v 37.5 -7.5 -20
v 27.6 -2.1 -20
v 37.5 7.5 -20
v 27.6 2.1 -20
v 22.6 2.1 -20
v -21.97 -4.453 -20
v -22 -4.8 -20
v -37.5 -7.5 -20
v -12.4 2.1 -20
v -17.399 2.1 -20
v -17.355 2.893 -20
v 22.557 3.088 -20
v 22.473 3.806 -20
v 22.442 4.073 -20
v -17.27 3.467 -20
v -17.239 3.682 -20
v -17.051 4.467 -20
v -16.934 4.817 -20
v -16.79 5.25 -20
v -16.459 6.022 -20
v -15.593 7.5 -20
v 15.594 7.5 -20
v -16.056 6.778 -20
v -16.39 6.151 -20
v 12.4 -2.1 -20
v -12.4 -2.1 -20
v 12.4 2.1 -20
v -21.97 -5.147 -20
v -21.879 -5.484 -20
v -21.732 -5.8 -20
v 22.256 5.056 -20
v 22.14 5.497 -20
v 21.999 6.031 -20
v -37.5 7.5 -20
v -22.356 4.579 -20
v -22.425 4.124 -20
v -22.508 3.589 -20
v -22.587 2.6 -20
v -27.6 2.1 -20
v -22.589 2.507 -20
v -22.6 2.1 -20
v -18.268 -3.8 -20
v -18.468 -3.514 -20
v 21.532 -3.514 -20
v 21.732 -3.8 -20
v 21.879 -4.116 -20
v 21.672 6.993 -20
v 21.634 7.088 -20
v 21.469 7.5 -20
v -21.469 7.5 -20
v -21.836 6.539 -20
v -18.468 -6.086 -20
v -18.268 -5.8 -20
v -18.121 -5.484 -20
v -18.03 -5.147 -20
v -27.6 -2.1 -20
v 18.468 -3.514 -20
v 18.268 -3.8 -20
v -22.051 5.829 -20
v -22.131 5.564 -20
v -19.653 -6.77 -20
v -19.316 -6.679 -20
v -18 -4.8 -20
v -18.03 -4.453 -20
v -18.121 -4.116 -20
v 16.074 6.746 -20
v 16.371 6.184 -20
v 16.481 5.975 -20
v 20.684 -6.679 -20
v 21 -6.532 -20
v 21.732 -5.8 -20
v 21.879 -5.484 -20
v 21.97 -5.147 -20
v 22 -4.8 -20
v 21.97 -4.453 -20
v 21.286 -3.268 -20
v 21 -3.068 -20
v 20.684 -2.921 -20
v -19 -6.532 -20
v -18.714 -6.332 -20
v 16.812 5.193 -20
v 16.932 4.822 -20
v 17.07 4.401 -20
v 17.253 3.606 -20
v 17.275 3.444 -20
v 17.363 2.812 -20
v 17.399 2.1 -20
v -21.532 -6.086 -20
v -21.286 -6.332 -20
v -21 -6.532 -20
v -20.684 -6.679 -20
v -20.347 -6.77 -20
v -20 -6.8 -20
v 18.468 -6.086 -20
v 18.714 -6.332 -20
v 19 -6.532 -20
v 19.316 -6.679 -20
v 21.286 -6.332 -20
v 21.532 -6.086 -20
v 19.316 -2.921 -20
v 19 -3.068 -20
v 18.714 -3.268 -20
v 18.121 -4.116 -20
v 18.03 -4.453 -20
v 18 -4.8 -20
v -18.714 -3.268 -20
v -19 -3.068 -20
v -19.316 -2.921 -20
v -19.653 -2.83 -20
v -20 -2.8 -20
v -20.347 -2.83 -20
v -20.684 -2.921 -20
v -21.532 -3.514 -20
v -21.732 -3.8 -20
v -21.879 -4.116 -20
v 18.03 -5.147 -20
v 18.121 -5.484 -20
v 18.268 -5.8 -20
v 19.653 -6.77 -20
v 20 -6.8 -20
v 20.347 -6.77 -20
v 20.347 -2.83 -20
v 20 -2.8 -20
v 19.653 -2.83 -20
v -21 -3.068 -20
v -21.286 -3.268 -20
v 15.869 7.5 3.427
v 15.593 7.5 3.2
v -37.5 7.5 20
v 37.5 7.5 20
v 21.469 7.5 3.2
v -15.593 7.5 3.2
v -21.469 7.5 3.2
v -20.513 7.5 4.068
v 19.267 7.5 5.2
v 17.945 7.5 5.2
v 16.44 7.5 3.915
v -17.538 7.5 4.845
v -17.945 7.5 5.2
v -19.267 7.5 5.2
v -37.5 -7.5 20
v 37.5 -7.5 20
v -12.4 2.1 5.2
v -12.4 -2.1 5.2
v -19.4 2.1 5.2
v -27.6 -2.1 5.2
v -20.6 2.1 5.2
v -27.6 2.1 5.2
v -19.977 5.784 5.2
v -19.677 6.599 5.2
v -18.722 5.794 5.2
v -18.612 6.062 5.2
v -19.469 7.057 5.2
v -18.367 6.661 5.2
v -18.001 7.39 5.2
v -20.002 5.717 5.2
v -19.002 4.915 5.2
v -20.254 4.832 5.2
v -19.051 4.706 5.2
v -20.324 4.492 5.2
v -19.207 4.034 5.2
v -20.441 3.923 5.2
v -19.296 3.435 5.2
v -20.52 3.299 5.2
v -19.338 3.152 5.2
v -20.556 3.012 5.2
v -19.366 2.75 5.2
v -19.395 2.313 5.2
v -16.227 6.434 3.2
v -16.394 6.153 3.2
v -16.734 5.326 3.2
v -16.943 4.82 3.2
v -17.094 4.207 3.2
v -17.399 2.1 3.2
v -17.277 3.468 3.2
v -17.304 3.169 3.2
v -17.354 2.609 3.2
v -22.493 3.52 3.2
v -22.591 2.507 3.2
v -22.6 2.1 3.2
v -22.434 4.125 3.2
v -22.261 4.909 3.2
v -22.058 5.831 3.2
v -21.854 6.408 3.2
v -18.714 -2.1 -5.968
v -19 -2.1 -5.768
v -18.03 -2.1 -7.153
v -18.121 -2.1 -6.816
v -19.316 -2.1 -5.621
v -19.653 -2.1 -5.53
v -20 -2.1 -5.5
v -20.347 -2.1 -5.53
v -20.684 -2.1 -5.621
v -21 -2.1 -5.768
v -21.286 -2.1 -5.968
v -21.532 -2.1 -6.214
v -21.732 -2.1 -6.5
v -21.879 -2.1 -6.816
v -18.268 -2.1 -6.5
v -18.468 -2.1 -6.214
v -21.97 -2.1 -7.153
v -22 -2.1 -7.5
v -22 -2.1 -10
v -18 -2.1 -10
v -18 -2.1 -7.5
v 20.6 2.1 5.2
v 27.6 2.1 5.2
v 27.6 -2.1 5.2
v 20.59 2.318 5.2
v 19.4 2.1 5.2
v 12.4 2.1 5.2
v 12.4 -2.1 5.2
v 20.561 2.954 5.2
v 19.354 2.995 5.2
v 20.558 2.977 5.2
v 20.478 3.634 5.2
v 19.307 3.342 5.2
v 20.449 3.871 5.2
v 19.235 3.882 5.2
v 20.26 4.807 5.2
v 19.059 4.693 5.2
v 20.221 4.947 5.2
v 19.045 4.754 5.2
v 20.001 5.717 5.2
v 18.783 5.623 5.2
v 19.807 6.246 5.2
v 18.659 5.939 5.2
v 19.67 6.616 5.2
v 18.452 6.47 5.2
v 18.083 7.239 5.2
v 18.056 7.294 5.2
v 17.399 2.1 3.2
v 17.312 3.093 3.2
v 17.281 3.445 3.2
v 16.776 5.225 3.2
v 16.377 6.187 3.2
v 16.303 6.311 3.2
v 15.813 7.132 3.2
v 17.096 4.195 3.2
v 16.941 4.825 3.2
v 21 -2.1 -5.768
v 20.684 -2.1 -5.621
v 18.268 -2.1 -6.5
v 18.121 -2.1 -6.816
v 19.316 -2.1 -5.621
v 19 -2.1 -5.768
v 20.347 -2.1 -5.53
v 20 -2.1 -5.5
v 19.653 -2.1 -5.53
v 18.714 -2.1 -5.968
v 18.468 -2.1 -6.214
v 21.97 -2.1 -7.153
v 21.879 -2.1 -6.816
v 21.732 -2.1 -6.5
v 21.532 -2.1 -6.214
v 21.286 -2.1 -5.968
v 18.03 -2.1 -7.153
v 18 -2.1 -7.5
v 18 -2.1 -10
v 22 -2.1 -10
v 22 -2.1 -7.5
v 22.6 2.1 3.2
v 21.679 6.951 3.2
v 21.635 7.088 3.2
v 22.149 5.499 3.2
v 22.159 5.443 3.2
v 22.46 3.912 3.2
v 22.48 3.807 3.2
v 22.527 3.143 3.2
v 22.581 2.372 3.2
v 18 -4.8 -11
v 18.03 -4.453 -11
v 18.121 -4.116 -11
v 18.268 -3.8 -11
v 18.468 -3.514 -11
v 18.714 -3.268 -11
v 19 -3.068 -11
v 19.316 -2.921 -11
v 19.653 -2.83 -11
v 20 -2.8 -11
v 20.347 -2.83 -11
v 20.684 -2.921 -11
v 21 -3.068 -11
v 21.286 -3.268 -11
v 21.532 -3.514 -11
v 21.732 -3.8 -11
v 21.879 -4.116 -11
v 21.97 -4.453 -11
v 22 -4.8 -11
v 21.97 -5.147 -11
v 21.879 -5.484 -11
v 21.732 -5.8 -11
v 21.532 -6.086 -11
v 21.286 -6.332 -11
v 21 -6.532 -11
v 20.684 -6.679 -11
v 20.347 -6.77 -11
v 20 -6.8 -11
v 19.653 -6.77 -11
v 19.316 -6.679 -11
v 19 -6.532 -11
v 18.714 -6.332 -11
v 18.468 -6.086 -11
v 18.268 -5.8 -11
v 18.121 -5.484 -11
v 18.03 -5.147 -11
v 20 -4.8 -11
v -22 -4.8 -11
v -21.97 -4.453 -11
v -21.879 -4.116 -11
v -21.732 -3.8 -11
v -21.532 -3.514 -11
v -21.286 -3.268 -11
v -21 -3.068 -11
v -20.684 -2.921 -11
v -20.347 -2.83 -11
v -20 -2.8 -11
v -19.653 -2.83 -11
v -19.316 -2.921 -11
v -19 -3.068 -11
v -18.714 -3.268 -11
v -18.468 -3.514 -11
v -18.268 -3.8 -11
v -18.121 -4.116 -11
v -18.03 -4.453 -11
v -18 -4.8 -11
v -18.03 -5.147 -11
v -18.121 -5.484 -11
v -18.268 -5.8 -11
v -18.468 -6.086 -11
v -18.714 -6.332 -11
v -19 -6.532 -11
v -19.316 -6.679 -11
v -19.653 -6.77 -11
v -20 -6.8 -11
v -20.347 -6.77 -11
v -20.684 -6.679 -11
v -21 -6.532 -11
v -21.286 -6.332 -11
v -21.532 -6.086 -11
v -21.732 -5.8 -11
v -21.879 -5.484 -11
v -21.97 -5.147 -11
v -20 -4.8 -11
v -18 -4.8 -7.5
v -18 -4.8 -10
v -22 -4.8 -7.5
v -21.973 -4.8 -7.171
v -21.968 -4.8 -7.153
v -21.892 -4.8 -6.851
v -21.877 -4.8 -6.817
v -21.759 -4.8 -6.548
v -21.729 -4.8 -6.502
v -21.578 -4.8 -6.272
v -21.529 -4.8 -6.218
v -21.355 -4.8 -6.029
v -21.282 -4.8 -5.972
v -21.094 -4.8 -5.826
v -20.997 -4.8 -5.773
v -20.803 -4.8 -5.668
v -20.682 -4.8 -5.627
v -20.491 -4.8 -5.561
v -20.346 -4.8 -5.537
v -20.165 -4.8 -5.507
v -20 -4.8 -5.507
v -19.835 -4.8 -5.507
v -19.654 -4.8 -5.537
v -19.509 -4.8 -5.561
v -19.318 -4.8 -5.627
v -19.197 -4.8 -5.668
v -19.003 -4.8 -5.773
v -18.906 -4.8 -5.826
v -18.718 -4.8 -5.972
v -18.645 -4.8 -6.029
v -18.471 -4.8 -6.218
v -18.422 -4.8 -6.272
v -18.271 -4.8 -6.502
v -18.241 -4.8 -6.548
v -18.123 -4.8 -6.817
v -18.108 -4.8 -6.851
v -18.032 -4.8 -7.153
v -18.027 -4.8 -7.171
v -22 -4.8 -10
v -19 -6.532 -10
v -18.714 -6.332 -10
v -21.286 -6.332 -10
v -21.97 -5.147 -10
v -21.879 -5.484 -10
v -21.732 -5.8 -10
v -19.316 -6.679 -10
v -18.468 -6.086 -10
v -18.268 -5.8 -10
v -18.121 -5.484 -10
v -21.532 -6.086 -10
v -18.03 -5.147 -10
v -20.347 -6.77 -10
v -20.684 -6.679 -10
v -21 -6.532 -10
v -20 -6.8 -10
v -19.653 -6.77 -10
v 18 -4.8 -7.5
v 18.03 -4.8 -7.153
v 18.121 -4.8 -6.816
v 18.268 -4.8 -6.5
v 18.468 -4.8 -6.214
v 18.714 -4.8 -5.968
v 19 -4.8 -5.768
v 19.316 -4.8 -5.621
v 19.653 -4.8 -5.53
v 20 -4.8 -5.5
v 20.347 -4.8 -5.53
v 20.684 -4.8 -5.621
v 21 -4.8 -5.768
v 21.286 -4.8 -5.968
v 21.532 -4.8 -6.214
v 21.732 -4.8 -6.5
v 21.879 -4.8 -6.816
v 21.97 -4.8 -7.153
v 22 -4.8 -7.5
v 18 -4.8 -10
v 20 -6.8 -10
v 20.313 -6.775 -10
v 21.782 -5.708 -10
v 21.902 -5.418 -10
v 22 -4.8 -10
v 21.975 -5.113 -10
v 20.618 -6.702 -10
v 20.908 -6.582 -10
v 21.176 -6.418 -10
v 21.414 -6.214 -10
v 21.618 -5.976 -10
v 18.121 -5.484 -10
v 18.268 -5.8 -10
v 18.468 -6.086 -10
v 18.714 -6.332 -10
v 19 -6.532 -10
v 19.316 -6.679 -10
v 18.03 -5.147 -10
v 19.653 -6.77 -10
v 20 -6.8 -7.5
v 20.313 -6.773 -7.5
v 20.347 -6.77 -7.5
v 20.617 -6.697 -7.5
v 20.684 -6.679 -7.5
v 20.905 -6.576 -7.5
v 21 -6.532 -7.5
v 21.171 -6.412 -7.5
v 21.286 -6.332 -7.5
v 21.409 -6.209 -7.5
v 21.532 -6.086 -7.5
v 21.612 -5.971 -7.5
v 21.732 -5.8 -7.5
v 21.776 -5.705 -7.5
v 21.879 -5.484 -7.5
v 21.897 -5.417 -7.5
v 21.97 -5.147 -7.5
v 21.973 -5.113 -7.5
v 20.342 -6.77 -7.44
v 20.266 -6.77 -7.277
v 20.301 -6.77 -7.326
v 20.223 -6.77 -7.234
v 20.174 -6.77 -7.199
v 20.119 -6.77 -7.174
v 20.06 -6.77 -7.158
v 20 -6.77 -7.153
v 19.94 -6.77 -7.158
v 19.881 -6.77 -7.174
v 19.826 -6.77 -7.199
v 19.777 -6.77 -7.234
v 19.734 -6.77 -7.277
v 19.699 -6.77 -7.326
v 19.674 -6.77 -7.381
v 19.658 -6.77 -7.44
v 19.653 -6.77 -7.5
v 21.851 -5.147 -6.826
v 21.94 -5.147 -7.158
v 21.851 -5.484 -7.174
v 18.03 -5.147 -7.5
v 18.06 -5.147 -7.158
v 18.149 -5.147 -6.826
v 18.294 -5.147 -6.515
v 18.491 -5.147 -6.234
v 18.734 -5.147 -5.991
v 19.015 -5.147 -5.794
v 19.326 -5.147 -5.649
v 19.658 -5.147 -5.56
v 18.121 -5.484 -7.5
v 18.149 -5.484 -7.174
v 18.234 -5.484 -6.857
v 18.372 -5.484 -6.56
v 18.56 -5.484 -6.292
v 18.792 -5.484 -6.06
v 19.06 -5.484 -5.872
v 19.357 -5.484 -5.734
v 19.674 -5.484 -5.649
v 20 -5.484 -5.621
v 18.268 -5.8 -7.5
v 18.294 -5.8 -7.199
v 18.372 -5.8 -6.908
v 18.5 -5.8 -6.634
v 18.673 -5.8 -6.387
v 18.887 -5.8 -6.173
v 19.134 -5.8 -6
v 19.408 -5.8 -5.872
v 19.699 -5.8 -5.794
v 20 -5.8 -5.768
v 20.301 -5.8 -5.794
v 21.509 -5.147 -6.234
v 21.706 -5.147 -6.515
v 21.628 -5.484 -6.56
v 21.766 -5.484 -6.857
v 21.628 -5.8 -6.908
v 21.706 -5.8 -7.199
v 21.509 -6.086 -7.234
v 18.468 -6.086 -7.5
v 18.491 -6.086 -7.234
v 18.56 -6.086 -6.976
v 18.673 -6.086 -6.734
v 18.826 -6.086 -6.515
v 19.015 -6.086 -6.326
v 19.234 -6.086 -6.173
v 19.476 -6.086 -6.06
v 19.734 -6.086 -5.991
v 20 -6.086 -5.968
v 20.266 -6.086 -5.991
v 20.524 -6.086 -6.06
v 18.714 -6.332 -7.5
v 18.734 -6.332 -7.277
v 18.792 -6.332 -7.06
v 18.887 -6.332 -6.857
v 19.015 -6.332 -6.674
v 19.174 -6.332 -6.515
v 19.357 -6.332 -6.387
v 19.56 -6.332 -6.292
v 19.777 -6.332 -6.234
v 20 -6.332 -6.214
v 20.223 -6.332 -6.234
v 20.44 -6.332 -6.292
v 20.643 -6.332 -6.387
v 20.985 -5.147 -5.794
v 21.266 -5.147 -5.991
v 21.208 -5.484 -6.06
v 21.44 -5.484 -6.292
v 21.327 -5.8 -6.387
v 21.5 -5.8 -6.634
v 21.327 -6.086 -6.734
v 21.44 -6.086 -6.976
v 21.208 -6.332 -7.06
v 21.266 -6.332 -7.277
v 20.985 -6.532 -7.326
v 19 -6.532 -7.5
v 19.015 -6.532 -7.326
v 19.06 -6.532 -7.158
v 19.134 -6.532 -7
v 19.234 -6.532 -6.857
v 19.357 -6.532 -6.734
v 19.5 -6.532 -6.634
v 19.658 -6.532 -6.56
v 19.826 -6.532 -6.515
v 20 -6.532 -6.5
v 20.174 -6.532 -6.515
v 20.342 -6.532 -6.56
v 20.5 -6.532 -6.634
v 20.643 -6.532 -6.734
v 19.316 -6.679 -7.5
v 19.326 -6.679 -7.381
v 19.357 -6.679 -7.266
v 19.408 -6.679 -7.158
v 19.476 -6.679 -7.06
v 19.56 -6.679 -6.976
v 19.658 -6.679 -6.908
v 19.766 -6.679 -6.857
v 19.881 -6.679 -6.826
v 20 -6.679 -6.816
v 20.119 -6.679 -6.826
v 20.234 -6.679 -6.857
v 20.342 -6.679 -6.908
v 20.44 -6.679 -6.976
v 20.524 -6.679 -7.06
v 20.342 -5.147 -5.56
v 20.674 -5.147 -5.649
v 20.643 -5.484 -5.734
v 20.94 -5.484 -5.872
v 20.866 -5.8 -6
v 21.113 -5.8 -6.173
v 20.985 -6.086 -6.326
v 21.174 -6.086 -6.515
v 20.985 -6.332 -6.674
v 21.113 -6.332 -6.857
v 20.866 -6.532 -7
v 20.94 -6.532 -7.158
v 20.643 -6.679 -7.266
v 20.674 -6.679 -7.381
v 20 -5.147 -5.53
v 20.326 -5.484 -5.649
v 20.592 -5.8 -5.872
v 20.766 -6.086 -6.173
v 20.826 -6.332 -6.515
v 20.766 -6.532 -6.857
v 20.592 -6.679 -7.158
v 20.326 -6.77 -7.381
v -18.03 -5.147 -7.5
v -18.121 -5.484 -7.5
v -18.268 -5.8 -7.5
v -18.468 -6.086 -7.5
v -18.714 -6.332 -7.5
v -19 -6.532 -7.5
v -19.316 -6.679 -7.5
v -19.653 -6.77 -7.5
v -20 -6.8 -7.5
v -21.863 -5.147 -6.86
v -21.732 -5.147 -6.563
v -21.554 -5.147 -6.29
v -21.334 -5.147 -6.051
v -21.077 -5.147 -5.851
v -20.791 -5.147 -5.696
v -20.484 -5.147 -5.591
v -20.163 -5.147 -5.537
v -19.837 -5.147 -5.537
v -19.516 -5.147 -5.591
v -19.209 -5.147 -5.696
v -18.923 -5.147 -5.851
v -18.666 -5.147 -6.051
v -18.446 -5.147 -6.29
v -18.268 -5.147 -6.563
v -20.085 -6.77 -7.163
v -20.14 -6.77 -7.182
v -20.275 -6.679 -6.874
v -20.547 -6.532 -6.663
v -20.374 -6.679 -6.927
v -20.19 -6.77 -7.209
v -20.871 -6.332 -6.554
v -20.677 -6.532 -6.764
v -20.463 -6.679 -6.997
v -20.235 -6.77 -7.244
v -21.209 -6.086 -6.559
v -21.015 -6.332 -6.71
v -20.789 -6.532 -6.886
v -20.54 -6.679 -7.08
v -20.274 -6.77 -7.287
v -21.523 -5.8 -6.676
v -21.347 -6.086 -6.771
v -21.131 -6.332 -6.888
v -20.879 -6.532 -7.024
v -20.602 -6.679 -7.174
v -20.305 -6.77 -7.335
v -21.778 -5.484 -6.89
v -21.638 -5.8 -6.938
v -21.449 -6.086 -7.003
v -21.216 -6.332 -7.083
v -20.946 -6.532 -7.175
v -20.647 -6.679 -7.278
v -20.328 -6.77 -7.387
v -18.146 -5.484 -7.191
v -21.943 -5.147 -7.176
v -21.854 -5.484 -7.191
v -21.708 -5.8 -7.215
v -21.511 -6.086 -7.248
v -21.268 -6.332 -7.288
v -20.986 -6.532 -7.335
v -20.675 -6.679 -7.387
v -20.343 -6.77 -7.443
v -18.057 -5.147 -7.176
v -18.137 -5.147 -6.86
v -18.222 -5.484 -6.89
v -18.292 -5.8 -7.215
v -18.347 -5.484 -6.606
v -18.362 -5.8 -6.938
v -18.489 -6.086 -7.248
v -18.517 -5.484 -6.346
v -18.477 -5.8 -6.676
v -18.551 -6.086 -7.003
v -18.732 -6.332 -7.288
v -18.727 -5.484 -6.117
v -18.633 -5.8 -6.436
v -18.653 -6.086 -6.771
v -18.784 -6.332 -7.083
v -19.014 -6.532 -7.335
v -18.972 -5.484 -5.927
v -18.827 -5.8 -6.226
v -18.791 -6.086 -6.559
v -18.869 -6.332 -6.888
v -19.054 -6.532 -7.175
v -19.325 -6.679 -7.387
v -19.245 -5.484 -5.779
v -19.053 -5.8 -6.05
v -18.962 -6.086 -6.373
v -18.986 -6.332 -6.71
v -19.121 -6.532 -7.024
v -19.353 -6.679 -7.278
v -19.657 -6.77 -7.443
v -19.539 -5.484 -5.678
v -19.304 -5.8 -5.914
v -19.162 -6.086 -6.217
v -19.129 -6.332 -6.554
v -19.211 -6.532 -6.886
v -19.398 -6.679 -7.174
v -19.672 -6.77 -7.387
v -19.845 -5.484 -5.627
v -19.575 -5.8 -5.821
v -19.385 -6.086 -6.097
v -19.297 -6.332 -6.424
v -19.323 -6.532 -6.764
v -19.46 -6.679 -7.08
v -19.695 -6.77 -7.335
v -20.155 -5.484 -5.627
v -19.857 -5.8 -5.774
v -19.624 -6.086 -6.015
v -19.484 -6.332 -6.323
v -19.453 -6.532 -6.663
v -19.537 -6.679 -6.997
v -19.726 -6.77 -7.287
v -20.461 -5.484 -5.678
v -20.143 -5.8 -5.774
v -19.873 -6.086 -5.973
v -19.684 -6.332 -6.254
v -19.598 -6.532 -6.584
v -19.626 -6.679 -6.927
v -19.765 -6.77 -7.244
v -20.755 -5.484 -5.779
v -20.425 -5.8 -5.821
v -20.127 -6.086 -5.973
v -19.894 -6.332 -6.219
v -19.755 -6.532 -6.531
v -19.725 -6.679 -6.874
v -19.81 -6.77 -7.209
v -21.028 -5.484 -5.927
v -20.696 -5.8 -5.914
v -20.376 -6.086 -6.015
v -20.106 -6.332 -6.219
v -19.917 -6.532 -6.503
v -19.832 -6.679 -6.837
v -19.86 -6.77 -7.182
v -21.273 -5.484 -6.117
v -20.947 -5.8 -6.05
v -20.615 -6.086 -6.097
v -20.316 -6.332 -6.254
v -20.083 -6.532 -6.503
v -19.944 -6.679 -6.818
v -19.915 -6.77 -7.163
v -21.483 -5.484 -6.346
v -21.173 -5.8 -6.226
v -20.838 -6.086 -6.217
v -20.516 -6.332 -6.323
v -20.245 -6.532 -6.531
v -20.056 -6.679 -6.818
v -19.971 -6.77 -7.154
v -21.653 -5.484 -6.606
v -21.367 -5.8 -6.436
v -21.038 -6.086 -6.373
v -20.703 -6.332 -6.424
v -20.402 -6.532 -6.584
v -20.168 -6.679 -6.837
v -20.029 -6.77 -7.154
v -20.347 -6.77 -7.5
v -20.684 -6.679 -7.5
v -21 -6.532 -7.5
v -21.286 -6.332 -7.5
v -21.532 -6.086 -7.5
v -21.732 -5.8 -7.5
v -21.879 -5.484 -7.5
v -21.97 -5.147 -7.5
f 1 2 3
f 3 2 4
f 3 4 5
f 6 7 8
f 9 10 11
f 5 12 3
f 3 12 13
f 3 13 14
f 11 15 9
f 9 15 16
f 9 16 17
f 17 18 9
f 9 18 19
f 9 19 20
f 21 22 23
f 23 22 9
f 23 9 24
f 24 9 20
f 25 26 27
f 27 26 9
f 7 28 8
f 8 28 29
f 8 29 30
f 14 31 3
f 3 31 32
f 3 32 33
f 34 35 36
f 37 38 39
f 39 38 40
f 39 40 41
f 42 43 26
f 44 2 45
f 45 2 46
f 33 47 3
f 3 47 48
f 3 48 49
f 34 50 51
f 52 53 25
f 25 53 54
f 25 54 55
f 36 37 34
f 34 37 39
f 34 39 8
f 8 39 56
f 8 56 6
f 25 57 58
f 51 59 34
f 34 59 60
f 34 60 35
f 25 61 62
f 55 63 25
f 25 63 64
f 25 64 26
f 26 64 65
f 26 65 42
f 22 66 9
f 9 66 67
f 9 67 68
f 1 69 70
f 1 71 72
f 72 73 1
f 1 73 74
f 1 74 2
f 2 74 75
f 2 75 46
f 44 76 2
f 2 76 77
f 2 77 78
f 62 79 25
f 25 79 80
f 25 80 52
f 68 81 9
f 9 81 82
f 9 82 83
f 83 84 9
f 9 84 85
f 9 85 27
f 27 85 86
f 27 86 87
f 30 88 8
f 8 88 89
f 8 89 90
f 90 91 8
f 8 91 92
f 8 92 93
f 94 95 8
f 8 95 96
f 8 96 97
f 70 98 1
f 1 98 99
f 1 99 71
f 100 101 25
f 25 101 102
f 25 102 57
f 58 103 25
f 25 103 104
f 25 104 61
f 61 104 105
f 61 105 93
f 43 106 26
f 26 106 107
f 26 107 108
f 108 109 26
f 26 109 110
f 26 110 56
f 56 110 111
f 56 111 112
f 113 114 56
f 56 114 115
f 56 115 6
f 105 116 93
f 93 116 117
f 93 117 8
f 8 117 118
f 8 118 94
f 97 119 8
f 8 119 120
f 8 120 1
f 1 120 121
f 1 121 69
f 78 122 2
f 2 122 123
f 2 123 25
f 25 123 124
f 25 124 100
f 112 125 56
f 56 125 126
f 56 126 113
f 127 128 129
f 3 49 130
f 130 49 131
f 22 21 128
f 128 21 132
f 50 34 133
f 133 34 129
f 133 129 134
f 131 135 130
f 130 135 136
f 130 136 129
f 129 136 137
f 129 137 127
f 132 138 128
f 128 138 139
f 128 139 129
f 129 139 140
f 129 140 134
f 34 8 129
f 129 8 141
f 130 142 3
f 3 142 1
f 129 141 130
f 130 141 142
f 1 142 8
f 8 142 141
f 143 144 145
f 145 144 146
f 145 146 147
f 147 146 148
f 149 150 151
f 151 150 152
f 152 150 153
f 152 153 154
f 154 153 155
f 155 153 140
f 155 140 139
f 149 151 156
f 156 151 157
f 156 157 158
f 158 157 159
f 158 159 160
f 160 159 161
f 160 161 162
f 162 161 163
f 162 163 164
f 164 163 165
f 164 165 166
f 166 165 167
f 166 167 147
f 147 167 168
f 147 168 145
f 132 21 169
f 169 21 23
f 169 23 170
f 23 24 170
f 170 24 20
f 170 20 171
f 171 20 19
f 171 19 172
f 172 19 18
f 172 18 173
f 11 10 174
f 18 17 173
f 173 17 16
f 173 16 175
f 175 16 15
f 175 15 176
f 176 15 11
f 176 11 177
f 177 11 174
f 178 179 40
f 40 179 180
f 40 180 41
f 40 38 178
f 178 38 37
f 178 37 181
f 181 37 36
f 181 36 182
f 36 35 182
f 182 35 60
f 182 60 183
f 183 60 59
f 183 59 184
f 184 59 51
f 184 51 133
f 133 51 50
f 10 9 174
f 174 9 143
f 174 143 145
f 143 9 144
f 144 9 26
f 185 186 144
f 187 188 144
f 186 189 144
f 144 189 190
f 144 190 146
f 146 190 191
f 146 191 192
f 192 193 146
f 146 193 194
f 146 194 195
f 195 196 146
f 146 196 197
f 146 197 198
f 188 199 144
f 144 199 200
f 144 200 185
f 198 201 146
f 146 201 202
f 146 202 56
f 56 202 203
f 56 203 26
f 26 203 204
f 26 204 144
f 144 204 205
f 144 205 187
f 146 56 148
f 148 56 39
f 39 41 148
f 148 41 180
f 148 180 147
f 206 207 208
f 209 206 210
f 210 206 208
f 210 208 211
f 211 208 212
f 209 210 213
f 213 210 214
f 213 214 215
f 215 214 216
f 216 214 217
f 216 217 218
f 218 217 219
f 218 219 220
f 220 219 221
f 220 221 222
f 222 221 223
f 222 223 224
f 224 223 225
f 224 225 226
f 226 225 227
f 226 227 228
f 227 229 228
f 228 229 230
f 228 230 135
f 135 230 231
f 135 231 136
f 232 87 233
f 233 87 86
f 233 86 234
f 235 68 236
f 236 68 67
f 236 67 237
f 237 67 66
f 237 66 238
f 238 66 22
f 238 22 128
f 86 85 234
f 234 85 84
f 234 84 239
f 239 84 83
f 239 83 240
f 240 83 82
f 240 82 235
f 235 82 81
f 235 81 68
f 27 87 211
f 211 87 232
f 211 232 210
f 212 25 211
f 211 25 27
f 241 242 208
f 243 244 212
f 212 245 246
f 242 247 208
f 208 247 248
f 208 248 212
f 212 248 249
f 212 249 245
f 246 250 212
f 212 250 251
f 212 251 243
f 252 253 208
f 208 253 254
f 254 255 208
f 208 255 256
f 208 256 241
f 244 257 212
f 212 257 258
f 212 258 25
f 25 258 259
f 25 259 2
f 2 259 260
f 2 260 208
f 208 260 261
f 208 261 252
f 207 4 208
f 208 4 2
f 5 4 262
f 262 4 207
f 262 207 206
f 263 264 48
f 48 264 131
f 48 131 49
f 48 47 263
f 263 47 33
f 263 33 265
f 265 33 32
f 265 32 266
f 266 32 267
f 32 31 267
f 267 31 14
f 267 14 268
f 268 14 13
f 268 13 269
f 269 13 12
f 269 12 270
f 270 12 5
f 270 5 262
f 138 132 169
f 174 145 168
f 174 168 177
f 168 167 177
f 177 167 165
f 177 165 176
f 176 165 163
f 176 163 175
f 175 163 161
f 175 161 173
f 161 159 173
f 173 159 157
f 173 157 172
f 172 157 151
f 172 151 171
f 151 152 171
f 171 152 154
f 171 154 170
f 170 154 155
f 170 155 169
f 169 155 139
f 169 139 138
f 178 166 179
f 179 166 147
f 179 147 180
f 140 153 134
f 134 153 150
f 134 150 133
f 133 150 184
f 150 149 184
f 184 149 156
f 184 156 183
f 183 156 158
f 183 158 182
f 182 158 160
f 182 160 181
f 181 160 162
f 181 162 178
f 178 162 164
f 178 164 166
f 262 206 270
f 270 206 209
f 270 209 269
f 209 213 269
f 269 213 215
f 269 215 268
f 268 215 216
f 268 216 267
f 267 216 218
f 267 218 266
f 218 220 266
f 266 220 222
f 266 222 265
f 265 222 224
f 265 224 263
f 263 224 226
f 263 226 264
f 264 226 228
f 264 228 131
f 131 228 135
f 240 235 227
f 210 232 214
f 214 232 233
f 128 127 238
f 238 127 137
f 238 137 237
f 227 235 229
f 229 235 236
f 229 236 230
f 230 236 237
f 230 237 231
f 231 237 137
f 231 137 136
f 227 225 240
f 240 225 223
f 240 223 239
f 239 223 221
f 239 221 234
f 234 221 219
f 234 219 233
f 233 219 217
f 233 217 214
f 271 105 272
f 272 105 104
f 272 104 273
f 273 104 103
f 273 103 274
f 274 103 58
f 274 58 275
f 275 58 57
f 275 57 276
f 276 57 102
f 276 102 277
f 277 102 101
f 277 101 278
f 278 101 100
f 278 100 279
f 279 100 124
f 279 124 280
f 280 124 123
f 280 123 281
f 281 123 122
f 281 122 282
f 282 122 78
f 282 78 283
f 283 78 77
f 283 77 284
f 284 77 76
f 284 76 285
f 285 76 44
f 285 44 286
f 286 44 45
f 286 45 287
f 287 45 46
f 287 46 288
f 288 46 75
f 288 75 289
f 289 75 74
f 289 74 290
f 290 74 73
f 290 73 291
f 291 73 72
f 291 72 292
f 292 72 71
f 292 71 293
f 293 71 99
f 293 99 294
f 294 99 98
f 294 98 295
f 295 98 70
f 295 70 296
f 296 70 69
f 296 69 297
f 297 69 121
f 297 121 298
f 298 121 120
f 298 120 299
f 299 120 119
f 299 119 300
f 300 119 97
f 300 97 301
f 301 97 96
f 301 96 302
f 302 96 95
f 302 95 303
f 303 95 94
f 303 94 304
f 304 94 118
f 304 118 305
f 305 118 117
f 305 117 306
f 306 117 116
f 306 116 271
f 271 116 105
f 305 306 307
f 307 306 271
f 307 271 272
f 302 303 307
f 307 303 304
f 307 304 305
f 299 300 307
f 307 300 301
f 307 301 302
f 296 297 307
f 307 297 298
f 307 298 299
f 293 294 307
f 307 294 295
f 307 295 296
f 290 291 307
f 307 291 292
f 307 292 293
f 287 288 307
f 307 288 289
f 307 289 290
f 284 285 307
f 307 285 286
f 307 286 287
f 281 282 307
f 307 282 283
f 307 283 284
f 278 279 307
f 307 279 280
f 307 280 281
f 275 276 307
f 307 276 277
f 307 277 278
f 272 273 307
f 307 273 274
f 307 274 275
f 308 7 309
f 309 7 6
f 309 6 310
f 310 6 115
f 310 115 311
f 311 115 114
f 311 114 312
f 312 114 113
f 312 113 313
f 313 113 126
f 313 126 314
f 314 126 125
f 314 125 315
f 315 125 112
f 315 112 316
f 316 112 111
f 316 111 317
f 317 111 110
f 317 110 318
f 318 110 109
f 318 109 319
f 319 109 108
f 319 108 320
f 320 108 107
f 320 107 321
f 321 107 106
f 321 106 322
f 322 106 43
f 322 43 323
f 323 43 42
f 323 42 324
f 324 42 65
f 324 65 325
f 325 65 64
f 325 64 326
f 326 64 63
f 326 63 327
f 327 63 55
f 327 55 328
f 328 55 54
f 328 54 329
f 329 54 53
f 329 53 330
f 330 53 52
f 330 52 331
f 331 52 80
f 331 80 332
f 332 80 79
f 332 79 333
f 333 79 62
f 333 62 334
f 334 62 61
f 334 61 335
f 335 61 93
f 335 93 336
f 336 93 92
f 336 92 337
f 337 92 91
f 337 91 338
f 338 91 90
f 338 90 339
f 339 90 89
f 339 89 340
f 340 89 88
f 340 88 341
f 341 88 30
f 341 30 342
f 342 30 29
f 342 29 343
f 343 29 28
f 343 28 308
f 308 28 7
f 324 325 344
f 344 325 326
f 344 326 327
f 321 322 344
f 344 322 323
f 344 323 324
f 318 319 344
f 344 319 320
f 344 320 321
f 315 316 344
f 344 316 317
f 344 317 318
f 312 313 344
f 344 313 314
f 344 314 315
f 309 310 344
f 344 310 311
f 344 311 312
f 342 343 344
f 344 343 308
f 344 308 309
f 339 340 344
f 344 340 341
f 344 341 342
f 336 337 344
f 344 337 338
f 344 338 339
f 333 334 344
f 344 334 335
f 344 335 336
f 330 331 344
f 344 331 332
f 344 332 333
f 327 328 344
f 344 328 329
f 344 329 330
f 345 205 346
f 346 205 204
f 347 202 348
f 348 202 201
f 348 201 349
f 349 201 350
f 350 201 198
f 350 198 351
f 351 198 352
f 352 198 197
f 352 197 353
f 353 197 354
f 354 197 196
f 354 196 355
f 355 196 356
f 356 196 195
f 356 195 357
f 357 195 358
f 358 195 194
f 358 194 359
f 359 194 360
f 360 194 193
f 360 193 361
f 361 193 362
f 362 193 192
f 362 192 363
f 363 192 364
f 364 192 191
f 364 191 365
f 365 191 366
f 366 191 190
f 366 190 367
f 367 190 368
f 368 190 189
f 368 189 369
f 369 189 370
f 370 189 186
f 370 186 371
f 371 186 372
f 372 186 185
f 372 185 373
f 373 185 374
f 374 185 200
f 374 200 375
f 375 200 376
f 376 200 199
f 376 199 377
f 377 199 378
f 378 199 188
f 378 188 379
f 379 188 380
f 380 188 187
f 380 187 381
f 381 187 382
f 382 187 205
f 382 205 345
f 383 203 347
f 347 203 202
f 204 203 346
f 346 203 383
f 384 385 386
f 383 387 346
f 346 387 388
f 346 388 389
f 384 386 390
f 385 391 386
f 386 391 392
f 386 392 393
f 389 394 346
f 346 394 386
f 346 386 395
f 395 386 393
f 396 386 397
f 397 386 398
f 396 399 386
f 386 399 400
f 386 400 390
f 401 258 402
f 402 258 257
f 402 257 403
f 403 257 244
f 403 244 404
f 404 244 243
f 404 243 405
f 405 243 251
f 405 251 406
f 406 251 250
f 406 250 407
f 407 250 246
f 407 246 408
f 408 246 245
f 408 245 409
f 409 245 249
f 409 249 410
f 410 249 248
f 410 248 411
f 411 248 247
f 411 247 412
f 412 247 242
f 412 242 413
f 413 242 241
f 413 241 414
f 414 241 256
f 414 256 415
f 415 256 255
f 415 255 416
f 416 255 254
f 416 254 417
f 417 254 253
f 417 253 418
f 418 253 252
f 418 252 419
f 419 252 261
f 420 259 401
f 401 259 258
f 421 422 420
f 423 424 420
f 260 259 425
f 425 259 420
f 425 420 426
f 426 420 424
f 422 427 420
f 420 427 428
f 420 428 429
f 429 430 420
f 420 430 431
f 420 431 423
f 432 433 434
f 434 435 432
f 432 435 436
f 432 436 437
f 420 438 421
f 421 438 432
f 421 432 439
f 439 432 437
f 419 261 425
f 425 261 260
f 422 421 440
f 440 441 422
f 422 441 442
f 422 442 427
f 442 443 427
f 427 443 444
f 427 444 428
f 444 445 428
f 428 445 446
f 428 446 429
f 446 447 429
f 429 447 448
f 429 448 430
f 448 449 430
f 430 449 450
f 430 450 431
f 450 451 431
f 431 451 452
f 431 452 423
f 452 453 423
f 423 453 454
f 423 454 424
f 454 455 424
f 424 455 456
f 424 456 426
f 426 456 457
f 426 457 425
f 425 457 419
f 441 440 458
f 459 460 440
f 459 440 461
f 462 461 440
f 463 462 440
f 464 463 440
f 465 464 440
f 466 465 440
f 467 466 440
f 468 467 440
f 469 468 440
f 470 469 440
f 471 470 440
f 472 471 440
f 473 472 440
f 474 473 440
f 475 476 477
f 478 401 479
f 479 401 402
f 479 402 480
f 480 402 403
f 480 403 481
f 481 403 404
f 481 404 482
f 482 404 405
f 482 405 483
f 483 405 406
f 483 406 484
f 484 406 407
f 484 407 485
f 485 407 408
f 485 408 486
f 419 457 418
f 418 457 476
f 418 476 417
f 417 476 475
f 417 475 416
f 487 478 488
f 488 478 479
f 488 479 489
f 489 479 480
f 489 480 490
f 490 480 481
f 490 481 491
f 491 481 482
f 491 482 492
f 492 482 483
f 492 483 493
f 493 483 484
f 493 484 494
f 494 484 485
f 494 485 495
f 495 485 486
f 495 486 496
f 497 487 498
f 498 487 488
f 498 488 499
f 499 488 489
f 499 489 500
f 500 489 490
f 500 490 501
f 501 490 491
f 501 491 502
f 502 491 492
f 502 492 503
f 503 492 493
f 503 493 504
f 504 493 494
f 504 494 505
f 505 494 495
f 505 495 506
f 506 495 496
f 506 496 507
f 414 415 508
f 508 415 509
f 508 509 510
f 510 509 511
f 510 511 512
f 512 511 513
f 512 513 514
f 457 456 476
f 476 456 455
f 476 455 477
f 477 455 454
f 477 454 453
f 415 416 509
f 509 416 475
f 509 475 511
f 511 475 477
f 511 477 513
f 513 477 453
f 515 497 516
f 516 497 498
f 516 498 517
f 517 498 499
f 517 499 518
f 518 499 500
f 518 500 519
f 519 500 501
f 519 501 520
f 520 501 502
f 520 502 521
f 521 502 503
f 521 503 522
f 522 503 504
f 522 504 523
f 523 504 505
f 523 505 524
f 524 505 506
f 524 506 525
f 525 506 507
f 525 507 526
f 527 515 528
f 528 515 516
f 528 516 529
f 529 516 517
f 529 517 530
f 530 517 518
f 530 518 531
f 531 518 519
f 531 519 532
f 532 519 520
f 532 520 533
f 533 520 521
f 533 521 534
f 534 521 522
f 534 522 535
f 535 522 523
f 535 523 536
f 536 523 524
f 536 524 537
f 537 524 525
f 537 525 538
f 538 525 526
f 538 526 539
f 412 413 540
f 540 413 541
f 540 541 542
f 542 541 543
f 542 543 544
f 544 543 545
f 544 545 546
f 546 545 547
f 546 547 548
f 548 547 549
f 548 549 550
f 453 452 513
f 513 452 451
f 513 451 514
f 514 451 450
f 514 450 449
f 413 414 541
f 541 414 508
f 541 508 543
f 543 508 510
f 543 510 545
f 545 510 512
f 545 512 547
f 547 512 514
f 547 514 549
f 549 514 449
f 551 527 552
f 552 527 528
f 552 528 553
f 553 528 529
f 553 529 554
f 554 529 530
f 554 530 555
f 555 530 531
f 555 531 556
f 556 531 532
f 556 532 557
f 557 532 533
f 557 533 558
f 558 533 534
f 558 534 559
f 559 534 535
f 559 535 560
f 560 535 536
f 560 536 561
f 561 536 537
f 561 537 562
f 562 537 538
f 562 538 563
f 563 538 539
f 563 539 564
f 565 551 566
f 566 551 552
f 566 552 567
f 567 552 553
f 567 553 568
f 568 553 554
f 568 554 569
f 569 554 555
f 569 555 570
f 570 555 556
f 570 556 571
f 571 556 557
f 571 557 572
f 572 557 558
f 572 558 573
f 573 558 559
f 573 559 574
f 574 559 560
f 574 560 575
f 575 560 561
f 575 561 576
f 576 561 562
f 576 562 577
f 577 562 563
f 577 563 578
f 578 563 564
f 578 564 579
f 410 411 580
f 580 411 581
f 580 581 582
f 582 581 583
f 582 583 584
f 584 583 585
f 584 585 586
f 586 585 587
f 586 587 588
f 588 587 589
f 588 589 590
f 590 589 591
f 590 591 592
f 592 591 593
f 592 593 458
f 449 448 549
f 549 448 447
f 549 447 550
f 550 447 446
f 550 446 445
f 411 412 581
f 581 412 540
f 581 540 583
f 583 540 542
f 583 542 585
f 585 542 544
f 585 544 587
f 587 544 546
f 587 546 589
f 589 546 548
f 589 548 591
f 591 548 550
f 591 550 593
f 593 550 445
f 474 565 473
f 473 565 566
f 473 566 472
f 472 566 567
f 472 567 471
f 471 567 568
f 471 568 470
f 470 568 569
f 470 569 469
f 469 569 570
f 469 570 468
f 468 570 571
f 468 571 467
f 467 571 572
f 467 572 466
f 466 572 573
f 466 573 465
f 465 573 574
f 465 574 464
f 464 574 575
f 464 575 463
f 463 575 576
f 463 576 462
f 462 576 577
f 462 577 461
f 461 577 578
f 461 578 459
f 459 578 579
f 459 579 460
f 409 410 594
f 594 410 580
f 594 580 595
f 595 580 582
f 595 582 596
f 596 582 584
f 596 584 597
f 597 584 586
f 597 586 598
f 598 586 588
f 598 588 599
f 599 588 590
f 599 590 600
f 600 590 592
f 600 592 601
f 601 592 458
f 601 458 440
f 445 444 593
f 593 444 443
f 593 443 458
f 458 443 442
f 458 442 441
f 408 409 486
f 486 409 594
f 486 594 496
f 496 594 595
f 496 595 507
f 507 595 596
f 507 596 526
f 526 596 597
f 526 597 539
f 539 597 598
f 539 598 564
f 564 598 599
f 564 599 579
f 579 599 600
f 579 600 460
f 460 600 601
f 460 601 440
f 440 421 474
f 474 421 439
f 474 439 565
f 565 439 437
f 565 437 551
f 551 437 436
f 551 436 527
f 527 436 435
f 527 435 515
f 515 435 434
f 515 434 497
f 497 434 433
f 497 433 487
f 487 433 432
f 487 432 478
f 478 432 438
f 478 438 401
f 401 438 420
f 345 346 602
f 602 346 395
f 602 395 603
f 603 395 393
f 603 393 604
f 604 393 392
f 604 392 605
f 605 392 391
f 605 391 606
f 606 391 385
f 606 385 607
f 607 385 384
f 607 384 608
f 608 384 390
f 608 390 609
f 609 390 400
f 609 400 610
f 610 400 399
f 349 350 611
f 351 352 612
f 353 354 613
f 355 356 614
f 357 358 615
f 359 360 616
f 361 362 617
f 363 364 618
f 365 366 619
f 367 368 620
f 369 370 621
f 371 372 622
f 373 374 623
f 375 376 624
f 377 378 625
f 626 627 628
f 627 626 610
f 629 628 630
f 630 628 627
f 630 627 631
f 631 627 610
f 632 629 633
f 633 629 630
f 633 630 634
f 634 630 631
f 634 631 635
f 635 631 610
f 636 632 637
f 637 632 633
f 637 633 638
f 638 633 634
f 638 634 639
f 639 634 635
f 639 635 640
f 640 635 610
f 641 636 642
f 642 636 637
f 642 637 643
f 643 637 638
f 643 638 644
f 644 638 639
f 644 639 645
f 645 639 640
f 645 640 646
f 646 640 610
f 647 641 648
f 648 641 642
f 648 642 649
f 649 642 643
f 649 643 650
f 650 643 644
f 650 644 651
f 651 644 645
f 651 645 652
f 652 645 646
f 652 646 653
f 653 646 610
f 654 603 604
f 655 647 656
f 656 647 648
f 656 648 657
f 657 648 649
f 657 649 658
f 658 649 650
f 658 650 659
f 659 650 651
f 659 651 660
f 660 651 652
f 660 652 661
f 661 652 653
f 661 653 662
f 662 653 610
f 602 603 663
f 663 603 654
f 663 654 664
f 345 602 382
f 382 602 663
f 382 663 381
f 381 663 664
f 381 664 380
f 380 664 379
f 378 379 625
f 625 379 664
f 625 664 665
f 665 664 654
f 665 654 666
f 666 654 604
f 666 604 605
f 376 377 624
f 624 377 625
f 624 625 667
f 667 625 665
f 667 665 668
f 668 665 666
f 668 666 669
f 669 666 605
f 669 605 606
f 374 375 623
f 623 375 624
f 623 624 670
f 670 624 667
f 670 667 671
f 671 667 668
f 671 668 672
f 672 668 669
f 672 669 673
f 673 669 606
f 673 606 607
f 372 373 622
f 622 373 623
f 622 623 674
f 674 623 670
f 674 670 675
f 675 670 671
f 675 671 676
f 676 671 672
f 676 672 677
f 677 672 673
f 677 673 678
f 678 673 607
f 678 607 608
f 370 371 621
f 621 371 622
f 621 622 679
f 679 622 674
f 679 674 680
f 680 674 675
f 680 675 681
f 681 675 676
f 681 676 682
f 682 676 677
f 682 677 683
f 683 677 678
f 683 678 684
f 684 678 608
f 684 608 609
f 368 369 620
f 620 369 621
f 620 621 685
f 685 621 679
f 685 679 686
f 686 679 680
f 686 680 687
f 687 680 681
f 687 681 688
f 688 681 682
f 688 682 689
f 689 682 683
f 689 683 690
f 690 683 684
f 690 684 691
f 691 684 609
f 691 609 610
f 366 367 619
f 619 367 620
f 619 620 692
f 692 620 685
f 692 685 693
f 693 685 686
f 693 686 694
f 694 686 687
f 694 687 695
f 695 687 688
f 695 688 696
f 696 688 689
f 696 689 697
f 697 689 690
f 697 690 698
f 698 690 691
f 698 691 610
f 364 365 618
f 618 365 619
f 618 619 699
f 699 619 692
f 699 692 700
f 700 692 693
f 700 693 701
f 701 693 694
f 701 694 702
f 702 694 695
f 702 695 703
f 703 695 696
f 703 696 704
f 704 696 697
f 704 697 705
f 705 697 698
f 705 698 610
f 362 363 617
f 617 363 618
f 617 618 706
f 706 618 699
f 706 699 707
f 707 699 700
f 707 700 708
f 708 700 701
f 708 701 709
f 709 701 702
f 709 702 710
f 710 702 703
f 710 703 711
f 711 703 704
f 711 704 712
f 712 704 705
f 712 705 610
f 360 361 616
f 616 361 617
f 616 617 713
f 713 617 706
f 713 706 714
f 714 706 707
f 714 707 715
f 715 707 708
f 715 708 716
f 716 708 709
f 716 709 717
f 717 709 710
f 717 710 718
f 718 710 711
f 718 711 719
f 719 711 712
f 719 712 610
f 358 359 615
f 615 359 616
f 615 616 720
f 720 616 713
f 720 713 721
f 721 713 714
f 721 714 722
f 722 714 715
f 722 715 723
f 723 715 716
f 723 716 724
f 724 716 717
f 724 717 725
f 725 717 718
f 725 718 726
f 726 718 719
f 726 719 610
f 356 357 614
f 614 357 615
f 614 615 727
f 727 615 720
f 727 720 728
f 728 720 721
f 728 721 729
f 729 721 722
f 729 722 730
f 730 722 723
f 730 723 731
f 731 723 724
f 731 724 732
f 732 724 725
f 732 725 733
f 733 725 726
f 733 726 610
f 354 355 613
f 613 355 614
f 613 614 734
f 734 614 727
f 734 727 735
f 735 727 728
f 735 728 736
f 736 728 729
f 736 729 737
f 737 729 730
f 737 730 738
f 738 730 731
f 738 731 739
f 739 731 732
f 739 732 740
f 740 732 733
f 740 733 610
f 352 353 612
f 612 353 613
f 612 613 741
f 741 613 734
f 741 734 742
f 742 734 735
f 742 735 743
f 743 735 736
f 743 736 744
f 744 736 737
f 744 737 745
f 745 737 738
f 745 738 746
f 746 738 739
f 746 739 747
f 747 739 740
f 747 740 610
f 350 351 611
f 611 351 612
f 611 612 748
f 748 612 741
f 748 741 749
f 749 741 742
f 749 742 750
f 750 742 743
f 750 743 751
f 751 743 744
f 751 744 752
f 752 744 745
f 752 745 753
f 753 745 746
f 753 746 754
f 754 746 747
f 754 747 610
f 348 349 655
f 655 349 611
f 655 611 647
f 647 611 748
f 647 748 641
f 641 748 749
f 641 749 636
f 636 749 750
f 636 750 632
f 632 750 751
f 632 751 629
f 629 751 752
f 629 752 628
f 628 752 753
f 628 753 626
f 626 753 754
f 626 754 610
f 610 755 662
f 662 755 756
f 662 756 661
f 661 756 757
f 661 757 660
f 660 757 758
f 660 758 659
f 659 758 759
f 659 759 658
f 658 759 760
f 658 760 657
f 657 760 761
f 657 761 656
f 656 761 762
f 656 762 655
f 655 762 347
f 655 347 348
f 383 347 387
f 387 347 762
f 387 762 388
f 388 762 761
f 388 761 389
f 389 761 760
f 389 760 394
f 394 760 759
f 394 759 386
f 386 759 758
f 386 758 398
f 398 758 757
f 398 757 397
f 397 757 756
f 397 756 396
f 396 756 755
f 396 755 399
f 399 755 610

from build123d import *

# Parameters (mm, degrees)
BOSS_EXTRUDE1_DEPTH      = 7.5
BOSS_EXTRUDE1_DEPTH_BACK = 7.5
SKETCH1_W                = 75
SKETCH1_H                = 40
CUT_EXTRUDE1_DEPTH       = 5.2
CUT_EXTRUDE1_DEPTH_BACK  = 20
CHAMFER1_SIZE            = 2
SKETCH3_R                = 2
CUT_EXTRUDE2_DEPTH       = 9
CUT_EXTRUDE3_DEPTH       = 4.7
FILLET1_R                = 2


with BuildPart() as part:
    # Sketch1 → Boss-Extrude1 (new, two sides: drawn at the far end of the back side and taken through both)
    with BuildSketch(Plane(origin=(0, 0, 0), x_dir=(1, 0, 0), z_dir=(0, 1, 0)).offset(-BOSS_EXTRUDE1_DEPTH_BACK)):
        Rectangle(SKETCH1_W, SKETCH1_H)
    extrude(amount=BOSS_EXTRUDE1_DEPTH + BOSS_EXTRUDE1_DEPTH_BACK)

    # Sketch2 → Cut-Extrude1 (cut, two sides: drawn at the far end of the back side and taken through both)
    with BuildSketch(Plane.XY.offset(-CUT_EXTRUDE1_DEPTH_BACK)):
        with BuildLine():
            Line((6.87897019, 18.765118011), (-6.87897019, 18.765118011))
            add(Edge.make_bspline(
                [(-6.87897019, 18.765118011), (-9.129399026, 18.205247728), (-11.266061827, 17.3684432), (-15.104945109, 15.221192023), (-16.806572871, 13.91106443), (-19.608554315, 10.943595702), (-20.708442739, 9.286661987), (-22.197433977, 5.786794286), (-22.586183082, 3.944422776), (-22.599635329, 2.1)],
                knots=[0, 0, 0, 0, 0.25, 0.25, 0.5, 0.5, 0.75, 0.75, 1, 1, 1, 1], degree=3))
            Line((-22.599635329, 2.1), (-27.6, 2.1))
            Line((-27.6, 2.1), (-27.6, -2.1))
            Line((-27.6, -2.1), (-21.5, -2.1))
            Line((-21.5, -2.1), (-18.5, -2.1))
            Line((-18.5, -2.1), (-12.4, -2.1))
            Line((-12.4, -2.1), (-12.4, 2.1))
            Line((-12.4, 2.1), (-17.399433648, 2.1))
            add(Edge.make_bspline(
                [(-17.399433648, 2.1), (-17.381202069, 3.709535833), (-16.917608437, 5.316341272), (-15.60243407, 7.545915267), (-15.061738812, 8.259029365), (-13.79568918, 9.597737471), (-13.070365792, 10.223287356), (-10.658457879, 11.932196217), (-8.73364722, 12.845140962), (-4.538397278, 14.079281106), (-2.269643886, 14.4), (2.269643886, 14.4), (4.538397278, 14.079281106), (8.73364722, 12.845140962), (10.658457879, 11.932196217), (13.070365792, 10.223287356), (13.79568918, 9.597737471), (15.061738812, 8.259029365), (15.60243407, 7.545915267), (16.917608437, 5.316341272), (17.381202069, 3.709535833), (17.399433648, 2.1)],
                knots=[0, 0, 0, 0, 0.125, 0.125, 0.1875, 0.1875, 0.25, 0.25, 0.375, 0.375, 0.5, 0.5, 0.625, 0.625, 0.75, 0.75, 0.8125, 0.8125, 0.875, 0.875, 1, 1, 1, 1], degree=3))
            Line((17.399433648, 2.1), (12.4, 2.1))
            Line((12.4, 2.1), (12.4, -2.1))
            Line((12.4, -2.1), (18.5, -2.1))
            Line((18.5, -2.1), (21.5, -2.1))
            Line((21.5, -2.1), (27.6, -2.1))
            Line((27.6, -2.1), (27.6, 2.1))
            Line((27.6, 2.1), (22.599635329, 2.1))
            add(Edge.make_bspline(
                [(22.599635329, 2.1), (22.586183082, 3.944422776), (22.197433977, 5.786794286), (20.708442739, 9.286661987), (19.608554315, 10.943595702), (16.806572871, 13.91106443), (15.104945109, 15.221192023), (11.266061827, 17.3684432), (9.129399026, 18.205247728), (6.87897019, 18.765118011)],
                knots=[0, 0, 0, 0, 0.25, 0.25, 0.5, 0.5, 0.75, 0.75, 1, 1, 1, 1], degree=3))
        make_face()
    extrude(amount=CUT_EXTRUDE1_DEPTH + CUT_EXTRUDE1_DEPTH_BACK, mode=Mode.SUBTRACT)

    # Chamfer1
    chamfer1_edges = [part.edges().sort_by_distance(p)[0] for p in [
        (-16.904241207, 4.934871199, 5.2),
        (-22.30006804, 4.855503871, 5.2),
        (22.30006804, 4.855503871, 5.2),
        (16.904241207, 4.934871199, 5.2),
    ]]
    chamfer(chamfer1_edges, length=CHAMFER1_SIZE)

    # Sketch3 → Cut-Extrude2 (cut)
    with BuildSketch(Plane(origin=(0, 0, -20), x_dir=(-1, 0, 0), z_dir=(0, 0, -1))):
        with Locations((-20, -4.8)):
            Circle(SKETCH3_R)
        with Locations(Location((20, -4.8, 0), (0, 0, 180))):
            Circle(SKETCH3_R)
    extrude(amount=-CUT_EXTRUDE2_DEPTH, mode=Mode.SUBTRACT)

    # Sketch4 → Cut-Extrude3 (cut)
    with BuildSketch(Plane(origin=(0, -2.1, 0), x_dir=(1, 0, 0), z_dir=(0, 1, 0))):
        with BuildLine():
            Line((-22, 7.5), (-22, 10))
            Line((-22, 10), (-18, 10))
            Line((-18, 10), (-18, 7.5))
            ThreePointArc((-18, 7.5), (-20, 5.5), (-22, 7.5))
        make_face()
        with BuildLine():
            Line((18, 10), (18, 7.5))
            ThreePointArc((18, 7.5), (20, 5.5), (22, 7.5))
            Line((22, 7.5), (22, 10))
            Line((22, 10), (18, 10))
        make_face()
    extrude(amount=-CUT_EXTRUDE3_DEPTH, mode=Mode.SUBTRACT)

    # Fillet1
    fillet1_edges = [part.edges().sort_by_distance(p)[0] for p in [
        (-22, -6.8, -8.75),
        (-18, -6.8, -8.75),
        (-20, -6.8, -5.5),
        (18, -6.8, -8.75),
        (22, -6.8, -8.75),
        (20, -6.8, -5.5),
    ]]
    fillet(fillet1_edges, radius=FILLET1_R - 0.0001)  # a hair under: the kernel refuses the full size


solid = part.part
